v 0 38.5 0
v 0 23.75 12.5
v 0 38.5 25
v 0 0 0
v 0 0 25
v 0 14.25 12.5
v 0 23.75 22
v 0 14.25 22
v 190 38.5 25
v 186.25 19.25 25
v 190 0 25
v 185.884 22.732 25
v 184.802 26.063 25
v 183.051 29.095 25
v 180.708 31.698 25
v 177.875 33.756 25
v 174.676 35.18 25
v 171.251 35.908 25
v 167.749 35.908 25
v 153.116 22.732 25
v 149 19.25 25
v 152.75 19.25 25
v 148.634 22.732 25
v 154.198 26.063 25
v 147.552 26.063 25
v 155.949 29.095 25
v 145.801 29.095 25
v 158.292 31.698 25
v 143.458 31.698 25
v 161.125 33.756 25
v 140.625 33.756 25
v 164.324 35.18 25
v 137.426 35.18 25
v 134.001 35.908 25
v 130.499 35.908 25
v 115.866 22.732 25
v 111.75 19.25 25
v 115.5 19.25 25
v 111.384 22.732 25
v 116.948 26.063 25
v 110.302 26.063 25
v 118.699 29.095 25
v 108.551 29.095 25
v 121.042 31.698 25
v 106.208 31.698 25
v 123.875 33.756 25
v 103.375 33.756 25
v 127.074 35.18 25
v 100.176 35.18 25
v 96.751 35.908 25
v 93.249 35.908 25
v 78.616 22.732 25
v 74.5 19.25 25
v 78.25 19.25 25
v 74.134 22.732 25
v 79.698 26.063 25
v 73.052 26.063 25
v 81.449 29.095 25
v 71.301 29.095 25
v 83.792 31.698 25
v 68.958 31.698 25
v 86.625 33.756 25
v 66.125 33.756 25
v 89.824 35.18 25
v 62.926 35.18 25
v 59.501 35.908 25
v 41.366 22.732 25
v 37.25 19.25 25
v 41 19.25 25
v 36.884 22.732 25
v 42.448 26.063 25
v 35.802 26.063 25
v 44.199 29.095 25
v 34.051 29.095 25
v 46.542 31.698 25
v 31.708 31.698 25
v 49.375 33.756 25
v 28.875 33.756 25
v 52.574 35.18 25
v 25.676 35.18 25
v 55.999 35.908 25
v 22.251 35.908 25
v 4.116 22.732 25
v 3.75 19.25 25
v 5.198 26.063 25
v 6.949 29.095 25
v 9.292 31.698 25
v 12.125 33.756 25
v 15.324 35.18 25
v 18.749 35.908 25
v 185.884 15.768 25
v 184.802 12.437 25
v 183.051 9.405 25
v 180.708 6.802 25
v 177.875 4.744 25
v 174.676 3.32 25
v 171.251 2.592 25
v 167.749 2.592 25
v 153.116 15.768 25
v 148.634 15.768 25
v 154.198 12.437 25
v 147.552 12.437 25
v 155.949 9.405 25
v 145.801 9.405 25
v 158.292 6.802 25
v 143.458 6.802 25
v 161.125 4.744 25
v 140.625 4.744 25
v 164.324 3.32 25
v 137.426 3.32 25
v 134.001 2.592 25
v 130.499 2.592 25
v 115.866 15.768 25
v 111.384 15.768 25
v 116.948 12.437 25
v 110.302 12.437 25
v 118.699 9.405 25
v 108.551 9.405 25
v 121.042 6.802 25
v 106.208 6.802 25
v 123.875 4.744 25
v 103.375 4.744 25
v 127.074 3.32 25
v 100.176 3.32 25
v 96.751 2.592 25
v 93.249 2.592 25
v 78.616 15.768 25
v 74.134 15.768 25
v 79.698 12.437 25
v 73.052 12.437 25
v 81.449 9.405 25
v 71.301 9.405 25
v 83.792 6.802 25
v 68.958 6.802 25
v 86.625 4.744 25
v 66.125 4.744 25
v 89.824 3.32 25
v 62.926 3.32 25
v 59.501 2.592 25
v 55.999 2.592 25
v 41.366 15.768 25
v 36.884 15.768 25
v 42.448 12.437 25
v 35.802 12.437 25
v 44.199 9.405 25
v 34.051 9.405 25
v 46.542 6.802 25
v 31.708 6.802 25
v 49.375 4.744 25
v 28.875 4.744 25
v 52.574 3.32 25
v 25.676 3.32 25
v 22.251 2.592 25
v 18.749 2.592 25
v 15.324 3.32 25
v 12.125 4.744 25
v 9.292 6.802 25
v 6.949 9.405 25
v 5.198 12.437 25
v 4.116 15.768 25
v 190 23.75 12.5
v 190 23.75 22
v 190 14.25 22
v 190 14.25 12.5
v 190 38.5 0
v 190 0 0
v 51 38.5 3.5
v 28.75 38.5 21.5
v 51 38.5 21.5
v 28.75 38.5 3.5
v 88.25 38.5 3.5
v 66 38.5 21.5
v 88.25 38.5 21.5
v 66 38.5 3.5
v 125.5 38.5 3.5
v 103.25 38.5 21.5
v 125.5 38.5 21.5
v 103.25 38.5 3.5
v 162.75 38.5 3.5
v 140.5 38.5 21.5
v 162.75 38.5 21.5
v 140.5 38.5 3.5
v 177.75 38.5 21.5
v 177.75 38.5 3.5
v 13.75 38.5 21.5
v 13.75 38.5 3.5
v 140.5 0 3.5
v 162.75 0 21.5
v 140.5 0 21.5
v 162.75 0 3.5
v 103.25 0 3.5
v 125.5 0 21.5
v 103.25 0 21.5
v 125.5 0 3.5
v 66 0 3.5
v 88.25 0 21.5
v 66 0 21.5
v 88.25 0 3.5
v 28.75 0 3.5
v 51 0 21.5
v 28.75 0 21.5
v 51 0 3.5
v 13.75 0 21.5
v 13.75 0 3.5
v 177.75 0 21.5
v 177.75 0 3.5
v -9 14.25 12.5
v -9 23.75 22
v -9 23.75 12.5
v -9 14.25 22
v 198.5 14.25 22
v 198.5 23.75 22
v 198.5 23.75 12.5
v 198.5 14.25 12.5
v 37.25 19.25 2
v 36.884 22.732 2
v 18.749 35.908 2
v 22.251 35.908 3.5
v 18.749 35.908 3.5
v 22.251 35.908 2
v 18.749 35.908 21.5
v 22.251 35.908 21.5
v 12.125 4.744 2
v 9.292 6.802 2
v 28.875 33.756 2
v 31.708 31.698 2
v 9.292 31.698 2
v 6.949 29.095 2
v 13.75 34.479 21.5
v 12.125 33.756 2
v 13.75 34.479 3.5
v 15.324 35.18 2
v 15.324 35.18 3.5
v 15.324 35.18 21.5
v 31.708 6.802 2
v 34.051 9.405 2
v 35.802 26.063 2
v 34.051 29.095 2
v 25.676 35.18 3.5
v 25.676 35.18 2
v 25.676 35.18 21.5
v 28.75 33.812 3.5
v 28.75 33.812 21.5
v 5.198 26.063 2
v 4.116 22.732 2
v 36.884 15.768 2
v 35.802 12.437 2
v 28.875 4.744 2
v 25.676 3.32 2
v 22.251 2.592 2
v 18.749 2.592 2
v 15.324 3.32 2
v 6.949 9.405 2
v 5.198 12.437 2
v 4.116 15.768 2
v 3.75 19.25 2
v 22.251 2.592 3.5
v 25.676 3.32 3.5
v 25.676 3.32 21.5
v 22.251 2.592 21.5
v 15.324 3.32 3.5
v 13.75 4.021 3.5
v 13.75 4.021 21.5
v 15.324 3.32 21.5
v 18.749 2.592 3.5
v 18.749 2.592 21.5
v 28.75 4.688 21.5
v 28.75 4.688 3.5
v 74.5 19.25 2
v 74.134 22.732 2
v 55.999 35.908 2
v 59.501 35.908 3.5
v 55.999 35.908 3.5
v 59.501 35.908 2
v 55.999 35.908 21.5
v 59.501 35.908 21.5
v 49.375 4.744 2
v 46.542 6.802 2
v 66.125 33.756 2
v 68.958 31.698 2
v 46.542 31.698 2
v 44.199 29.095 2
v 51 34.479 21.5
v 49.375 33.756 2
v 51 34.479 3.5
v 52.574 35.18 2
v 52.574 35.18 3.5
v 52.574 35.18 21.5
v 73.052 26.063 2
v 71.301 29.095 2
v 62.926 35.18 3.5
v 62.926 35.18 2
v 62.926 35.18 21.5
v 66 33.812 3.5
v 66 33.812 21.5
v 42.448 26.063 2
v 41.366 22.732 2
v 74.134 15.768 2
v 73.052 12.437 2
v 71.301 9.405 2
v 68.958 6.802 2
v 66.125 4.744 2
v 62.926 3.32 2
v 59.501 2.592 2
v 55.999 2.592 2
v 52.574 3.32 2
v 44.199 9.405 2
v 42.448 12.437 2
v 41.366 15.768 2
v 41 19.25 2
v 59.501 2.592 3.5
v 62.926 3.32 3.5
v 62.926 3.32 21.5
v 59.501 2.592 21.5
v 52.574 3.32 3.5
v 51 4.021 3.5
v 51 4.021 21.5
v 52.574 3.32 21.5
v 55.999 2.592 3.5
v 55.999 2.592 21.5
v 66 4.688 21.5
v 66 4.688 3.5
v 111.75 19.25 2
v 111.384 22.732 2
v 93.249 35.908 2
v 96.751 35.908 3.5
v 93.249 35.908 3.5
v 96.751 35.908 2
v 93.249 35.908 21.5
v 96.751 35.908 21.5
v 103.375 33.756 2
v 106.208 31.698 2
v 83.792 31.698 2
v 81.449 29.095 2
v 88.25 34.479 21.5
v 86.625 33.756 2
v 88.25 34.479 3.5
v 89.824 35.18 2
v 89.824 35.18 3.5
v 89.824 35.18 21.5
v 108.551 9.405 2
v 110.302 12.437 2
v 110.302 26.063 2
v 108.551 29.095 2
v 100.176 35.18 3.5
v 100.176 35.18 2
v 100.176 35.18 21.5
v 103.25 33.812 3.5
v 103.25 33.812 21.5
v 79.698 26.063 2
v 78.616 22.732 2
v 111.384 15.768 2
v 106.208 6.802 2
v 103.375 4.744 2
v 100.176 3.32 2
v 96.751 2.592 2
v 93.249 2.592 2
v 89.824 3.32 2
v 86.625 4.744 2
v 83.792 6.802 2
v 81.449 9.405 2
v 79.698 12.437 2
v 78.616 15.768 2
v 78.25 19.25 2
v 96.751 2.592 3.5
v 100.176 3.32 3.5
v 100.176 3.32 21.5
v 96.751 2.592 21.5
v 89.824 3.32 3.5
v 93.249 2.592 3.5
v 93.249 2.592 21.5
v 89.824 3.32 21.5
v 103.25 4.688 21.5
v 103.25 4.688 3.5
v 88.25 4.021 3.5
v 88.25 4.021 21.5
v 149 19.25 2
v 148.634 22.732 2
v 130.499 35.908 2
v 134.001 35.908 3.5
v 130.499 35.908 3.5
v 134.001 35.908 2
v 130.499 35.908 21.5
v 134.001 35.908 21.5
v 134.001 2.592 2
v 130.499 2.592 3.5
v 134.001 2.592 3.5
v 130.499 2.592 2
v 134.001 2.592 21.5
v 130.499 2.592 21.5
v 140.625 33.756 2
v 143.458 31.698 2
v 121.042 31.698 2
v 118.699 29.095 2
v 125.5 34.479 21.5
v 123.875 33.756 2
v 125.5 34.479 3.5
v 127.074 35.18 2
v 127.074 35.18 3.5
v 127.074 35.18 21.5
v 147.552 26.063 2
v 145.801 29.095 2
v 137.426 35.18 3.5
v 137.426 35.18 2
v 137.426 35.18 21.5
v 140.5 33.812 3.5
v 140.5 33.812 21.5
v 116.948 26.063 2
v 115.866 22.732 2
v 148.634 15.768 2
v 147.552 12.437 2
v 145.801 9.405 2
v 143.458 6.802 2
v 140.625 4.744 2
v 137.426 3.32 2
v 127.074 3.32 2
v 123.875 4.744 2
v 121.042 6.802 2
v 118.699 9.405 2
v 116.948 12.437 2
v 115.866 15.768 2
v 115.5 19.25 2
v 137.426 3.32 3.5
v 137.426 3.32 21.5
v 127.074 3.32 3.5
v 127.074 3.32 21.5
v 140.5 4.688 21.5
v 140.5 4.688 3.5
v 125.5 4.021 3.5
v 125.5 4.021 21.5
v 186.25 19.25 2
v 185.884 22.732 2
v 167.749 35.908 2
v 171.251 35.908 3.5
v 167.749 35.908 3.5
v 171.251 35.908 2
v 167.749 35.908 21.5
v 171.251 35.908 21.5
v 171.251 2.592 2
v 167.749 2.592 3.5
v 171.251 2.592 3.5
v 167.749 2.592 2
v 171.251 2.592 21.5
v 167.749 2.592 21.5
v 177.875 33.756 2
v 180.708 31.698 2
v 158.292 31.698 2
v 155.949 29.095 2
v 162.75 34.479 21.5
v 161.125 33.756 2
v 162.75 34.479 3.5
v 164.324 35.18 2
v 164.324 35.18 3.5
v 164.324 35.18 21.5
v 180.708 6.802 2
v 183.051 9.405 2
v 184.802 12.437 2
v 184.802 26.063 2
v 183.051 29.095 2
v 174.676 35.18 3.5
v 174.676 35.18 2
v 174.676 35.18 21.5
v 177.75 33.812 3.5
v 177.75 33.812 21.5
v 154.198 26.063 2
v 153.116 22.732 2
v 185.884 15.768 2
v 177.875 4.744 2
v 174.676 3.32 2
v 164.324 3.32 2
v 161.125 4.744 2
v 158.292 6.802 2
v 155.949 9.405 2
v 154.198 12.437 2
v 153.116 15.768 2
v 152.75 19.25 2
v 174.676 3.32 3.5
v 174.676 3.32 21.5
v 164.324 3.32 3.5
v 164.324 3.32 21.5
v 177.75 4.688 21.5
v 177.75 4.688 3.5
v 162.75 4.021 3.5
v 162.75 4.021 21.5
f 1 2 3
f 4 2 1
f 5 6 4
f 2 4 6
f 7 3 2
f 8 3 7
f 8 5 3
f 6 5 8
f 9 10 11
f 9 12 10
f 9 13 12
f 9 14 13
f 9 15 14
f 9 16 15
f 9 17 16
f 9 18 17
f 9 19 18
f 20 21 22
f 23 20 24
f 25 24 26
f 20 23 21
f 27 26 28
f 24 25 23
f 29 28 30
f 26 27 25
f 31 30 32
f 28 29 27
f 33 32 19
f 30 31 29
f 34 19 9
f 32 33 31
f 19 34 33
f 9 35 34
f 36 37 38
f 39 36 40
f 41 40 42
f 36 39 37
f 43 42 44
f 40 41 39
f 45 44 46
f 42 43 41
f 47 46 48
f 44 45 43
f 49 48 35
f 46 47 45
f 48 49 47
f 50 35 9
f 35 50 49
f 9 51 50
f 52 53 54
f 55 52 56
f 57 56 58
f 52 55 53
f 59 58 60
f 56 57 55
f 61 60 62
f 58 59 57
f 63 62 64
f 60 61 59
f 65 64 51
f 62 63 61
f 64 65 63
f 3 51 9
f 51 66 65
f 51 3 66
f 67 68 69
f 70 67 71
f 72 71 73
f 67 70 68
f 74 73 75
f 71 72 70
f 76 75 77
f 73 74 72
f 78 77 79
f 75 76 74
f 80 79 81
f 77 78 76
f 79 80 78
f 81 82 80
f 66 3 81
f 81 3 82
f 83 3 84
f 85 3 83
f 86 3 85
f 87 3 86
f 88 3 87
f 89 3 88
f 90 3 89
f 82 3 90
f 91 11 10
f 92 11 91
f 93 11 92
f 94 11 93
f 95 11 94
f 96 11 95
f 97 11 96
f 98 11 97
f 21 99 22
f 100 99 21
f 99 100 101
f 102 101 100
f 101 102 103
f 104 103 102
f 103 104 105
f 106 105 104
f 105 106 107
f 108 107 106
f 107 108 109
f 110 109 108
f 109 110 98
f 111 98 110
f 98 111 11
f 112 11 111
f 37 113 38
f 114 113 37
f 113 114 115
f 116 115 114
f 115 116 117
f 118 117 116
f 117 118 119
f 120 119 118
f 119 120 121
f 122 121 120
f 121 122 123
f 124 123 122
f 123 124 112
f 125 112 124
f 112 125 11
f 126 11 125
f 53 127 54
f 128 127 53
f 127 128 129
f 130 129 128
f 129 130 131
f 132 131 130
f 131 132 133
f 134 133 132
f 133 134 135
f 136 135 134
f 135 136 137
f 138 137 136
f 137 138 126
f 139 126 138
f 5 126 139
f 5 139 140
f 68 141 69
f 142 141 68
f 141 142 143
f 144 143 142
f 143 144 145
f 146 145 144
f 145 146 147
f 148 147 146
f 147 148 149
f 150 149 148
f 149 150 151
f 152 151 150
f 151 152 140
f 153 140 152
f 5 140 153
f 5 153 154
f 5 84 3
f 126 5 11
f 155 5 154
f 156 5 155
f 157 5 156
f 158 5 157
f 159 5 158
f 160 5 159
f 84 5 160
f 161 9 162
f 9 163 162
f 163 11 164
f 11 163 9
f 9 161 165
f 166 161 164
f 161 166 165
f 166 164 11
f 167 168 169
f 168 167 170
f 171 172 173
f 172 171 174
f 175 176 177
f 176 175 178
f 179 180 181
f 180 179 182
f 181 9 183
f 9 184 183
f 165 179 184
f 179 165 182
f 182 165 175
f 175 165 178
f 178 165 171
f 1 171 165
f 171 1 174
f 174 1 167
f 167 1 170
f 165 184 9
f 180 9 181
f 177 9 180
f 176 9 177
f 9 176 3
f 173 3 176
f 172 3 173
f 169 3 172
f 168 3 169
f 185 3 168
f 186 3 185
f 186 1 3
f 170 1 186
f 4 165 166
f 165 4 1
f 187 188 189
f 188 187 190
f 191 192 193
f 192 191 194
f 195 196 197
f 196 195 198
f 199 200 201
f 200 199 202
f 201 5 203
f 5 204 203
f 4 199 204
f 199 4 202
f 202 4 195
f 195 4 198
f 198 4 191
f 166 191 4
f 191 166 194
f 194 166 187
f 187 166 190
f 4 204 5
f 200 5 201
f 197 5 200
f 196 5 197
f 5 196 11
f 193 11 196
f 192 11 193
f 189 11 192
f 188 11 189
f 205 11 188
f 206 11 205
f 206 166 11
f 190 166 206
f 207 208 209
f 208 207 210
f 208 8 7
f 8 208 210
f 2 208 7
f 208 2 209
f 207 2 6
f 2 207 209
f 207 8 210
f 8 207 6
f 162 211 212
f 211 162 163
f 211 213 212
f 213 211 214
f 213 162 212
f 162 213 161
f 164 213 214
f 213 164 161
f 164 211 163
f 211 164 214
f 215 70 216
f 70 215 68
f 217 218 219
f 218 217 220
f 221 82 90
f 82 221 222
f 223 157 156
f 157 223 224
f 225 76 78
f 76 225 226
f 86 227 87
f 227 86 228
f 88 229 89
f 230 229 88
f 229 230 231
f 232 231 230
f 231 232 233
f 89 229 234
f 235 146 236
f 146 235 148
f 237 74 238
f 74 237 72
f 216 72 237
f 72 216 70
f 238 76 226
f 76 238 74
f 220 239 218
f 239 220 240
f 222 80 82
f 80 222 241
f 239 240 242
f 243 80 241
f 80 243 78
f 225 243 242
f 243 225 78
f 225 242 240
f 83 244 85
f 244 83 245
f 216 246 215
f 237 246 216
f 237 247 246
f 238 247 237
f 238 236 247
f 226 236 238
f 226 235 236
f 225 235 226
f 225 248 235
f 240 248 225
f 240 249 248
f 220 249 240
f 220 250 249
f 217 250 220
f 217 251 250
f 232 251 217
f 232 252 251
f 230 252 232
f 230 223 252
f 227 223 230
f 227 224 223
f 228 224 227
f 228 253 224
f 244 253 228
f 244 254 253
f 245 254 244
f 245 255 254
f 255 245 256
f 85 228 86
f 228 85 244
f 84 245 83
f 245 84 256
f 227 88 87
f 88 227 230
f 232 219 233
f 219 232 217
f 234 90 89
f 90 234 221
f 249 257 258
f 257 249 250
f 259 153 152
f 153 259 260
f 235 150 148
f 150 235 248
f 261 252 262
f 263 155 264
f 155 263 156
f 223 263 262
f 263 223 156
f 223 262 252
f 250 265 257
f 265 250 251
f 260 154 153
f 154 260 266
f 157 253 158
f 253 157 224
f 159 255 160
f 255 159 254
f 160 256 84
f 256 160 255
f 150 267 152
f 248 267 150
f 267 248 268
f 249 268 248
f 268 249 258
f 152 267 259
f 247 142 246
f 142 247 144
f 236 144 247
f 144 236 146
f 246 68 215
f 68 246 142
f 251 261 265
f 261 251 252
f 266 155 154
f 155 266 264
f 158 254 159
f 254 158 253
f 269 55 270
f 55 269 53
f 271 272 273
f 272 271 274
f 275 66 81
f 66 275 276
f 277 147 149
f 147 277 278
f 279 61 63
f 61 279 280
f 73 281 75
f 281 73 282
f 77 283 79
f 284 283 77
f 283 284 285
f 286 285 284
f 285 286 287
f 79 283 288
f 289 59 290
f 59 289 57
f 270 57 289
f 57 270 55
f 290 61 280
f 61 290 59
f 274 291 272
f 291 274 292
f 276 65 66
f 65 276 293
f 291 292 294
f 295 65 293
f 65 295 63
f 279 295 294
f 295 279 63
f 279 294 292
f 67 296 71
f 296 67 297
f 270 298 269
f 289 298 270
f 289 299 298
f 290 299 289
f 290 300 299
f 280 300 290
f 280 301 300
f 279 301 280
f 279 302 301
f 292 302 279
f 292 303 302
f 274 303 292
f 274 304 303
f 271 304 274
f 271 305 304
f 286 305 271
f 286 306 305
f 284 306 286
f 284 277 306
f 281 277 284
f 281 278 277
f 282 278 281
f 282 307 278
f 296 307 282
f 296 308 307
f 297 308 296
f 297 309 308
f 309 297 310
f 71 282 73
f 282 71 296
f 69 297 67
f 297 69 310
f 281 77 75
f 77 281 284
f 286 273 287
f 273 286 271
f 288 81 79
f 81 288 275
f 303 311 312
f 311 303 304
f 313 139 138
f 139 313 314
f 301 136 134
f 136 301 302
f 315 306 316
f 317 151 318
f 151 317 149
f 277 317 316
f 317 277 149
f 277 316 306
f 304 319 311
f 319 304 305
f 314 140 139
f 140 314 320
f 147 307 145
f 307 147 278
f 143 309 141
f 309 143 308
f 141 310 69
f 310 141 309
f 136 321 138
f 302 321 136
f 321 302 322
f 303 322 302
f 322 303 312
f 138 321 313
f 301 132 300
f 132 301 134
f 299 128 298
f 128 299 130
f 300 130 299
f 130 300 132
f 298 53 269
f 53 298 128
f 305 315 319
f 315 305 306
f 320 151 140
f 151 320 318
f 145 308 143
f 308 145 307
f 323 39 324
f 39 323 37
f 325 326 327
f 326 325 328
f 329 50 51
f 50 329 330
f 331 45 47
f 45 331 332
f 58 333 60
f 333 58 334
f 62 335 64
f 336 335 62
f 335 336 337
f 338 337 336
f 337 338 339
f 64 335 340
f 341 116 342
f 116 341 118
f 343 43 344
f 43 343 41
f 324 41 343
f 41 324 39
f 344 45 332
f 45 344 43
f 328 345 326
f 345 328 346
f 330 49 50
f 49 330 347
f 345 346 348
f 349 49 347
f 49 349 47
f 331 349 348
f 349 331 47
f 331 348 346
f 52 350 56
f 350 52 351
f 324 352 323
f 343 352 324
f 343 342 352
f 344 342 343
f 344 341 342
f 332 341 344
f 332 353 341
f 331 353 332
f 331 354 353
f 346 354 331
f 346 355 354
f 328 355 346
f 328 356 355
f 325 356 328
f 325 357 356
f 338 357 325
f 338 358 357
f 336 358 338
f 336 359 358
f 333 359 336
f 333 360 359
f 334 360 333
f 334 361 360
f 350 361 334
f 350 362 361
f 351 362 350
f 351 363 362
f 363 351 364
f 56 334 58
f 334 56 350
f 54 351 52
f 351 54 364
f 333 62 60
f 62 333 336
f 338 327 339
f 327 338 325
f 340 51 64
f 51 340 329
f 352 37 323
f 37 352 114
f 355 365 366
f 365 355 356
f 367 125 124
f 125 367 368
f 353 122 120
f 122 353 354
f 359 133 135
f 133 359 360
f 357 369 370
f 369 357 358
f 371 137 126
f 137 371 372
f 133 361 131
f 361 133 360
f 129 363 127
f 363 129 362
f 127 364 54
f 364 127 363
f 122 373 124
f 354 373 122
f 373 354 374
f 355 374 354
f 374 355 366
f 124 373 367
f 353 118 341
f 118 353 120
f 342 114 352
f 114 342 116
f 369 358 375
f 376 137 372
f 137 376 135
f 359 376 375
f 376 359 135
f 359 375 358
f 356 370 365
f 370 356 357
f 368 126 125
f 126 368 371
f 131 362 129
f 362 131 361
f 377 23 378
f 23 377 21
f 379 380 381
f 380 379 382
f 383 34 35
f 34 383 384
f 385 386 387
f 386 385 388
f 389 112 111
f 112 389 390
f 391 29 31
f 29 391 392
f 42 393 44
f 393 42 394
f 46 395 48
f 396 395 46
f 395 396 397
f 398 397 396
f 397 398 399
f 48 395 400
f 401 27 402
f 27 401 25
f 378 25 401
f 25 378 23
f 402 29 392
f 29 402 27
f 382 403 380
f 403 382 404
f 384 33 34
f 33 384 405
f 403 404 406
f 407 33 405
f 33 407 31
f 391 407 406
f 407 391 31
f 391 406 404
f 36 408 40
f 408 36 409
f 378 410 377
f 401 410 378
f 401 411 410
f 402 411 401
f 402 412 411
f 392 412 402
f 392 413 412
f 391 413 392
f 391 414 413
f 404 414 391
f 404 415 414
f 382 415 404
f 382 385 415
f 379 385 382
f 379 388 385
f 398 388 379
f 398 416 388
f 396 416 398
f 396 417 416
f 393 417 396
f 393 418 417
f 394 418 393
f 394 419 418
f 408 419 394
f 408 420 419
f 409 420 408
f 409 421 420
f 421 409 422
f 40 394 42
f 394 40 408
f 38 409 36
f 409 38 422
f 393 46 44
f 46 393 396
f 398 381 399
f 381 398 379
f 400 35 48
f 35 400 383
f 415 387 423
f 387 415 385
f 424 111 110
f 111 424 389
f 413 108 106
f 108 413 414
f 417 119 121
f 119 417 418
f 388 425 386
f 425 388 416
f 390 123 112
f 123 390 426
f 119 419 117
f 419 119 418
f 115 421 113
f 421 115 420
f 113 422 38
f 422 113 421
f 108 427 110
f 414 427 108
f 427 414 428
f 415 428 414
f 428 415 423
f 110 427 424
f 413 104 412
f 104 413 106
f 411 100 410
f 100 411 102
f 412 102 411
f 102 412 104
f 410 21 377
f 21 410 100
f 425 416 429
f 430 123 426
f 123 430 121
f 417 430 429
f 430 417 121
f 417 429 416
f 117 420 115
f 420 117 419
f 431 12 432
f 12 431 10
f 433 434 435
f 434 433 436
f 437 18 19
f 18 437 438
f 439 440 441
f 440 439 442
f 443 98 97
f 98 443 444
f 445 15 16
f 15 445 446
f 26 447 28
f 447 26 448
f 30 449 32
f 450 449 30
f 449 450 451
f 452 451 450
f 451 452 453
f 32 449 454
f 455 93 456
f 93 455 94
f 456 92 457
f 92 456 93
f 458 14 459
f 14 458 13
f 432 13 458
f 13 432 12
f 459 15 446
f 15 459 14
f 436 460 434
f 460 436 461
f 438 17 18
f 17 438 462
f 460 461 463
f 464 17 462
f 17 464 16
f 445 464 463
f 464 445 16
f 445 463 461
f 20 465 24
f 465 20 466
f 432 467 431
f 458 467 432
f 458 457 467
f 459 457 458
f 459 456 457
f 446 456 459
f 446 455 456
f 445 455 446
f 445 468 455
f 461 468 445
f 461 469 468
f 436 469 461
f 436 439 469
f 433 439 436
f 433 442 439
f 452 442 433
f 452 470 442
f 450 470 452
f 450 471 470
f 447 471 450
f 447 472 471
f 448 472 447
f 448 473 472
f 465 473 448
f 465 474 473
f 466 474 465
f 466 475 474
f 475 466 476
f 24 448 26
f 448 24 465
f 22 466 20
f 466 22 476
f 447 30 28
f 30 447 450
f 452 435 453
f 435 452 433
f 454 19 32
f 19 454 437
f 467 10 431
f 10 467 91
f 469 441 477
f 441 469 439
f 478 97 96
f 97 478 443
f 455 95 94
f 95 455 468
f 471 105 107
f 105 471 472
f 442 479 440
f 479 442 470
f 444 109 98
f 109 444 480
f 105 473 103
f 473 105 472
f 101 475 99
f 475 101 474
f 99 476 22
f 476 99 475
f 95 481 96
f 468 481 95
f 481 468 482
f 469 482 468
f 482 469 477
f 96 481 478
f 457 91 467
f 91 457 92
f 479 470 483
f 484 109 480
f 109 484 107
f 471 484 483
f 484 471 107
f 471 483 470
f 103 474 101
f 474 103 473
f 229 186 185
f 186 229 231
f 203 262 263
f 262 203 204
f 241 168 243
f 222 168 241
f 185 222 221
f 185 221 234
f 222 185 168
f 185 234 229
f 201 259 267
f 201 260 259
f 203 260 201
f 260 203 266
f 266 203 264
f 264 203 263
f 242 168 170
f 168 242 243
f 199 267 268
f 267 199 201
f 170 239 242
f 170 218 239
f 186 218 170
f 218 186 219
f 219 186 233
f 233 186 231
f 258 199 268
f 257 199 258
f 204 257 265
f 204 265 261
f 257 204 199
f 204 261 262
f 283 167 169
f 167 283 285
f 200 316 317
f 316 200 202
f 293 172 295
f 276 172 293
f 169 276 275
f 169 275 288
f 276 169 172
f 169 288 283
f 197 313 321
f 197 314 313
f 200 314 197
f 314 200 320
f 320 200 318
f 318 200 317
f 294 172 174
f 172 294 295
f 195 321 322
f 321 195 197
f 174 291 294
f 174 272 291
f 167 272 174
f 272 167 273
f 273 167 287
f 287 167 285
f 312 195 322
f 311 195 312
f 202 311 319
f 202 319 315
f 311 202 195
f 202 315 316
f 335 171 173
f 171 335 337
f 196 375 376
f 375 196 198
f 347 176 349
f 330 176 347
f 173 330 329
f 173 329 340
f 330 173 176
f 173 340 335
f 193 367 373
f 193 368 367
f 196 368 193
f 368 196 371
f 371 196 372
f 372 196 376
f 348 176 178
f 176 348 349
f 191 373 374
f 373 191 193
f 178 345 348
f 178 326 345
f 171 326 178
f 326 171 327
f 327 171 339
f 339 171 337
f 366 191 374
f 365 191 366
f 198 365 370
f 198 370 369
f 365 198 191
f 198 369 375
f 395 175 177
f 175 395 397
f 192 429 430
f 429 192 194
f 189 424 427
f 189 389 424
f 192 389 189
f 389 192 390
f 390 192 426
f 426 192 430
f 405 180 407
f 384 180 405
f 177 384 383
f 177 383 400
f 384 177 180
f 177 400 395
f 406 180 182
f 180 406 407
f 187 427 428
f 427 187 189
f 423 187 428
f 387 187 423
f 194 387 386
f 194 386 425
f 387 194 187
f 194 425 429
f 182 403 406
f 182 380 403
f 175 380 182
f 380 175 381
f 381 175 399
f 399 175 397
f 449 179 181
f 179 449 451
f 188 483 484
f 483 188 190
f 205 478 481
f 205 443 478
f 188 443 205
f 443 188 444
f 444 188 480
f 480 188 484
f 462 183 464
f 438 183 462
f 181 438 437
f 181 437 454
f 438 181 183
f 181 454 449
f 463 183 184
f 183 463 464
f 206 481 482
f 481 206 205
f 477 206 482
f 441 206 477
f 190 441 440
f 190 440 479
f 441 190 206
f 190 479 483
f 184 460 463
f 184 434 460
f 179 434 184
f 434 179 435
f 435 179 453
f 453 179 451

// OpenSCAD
// file: sizes.scad
citadel_pot=33.5;
citadel_radius=citadel_pot/2;
citadel_height=44;

vallejo_pot=25.8;
vallejo_radius=vallejo_pot/2;
vallejo_height=77.5;

tray_length=190;
tray_depth=citadel_pot+5;
tray_height=25;

hole_size=10;
// main file
include <sizes.scad>;
margin_y=(tray_depth - citadel_pot) /2;
margin_x=(tray_length - 5*citadel_pot)/6;

difference() {
    union() {
        // base 
        cube([tray_length, tray_depth, tray_height]);
        // connectors
        translate([-9, tray_depth/2-5, tray_height/2])cube([hole_size-0.5,hole_size-0.5,hole_size-0.5]);
        translate([tray_length-1, tray_depth/2-5, tray_height/2])cube([hole_size-0.5,hole_size-0.5,hole_size-0.5]);
    };
    
    // bottle holes
    for(x=[0:4])
        translate([margin_x + citadel_radius + x*margin_x + x*citadel_pot, citadel_radius + margin_y, 2])
            cylinder(r=citadel_radius, h=citadel_height);
    
    // holes to reduce material consumption
    for(x=[0:4])
        // @TODO remove magic numbers
        translate([-3+citadel_radius + x*margin_x + x*citadel_pot, citadel_radius + margin_y-50, 3.5])
            cube([15,100,18]);
};
